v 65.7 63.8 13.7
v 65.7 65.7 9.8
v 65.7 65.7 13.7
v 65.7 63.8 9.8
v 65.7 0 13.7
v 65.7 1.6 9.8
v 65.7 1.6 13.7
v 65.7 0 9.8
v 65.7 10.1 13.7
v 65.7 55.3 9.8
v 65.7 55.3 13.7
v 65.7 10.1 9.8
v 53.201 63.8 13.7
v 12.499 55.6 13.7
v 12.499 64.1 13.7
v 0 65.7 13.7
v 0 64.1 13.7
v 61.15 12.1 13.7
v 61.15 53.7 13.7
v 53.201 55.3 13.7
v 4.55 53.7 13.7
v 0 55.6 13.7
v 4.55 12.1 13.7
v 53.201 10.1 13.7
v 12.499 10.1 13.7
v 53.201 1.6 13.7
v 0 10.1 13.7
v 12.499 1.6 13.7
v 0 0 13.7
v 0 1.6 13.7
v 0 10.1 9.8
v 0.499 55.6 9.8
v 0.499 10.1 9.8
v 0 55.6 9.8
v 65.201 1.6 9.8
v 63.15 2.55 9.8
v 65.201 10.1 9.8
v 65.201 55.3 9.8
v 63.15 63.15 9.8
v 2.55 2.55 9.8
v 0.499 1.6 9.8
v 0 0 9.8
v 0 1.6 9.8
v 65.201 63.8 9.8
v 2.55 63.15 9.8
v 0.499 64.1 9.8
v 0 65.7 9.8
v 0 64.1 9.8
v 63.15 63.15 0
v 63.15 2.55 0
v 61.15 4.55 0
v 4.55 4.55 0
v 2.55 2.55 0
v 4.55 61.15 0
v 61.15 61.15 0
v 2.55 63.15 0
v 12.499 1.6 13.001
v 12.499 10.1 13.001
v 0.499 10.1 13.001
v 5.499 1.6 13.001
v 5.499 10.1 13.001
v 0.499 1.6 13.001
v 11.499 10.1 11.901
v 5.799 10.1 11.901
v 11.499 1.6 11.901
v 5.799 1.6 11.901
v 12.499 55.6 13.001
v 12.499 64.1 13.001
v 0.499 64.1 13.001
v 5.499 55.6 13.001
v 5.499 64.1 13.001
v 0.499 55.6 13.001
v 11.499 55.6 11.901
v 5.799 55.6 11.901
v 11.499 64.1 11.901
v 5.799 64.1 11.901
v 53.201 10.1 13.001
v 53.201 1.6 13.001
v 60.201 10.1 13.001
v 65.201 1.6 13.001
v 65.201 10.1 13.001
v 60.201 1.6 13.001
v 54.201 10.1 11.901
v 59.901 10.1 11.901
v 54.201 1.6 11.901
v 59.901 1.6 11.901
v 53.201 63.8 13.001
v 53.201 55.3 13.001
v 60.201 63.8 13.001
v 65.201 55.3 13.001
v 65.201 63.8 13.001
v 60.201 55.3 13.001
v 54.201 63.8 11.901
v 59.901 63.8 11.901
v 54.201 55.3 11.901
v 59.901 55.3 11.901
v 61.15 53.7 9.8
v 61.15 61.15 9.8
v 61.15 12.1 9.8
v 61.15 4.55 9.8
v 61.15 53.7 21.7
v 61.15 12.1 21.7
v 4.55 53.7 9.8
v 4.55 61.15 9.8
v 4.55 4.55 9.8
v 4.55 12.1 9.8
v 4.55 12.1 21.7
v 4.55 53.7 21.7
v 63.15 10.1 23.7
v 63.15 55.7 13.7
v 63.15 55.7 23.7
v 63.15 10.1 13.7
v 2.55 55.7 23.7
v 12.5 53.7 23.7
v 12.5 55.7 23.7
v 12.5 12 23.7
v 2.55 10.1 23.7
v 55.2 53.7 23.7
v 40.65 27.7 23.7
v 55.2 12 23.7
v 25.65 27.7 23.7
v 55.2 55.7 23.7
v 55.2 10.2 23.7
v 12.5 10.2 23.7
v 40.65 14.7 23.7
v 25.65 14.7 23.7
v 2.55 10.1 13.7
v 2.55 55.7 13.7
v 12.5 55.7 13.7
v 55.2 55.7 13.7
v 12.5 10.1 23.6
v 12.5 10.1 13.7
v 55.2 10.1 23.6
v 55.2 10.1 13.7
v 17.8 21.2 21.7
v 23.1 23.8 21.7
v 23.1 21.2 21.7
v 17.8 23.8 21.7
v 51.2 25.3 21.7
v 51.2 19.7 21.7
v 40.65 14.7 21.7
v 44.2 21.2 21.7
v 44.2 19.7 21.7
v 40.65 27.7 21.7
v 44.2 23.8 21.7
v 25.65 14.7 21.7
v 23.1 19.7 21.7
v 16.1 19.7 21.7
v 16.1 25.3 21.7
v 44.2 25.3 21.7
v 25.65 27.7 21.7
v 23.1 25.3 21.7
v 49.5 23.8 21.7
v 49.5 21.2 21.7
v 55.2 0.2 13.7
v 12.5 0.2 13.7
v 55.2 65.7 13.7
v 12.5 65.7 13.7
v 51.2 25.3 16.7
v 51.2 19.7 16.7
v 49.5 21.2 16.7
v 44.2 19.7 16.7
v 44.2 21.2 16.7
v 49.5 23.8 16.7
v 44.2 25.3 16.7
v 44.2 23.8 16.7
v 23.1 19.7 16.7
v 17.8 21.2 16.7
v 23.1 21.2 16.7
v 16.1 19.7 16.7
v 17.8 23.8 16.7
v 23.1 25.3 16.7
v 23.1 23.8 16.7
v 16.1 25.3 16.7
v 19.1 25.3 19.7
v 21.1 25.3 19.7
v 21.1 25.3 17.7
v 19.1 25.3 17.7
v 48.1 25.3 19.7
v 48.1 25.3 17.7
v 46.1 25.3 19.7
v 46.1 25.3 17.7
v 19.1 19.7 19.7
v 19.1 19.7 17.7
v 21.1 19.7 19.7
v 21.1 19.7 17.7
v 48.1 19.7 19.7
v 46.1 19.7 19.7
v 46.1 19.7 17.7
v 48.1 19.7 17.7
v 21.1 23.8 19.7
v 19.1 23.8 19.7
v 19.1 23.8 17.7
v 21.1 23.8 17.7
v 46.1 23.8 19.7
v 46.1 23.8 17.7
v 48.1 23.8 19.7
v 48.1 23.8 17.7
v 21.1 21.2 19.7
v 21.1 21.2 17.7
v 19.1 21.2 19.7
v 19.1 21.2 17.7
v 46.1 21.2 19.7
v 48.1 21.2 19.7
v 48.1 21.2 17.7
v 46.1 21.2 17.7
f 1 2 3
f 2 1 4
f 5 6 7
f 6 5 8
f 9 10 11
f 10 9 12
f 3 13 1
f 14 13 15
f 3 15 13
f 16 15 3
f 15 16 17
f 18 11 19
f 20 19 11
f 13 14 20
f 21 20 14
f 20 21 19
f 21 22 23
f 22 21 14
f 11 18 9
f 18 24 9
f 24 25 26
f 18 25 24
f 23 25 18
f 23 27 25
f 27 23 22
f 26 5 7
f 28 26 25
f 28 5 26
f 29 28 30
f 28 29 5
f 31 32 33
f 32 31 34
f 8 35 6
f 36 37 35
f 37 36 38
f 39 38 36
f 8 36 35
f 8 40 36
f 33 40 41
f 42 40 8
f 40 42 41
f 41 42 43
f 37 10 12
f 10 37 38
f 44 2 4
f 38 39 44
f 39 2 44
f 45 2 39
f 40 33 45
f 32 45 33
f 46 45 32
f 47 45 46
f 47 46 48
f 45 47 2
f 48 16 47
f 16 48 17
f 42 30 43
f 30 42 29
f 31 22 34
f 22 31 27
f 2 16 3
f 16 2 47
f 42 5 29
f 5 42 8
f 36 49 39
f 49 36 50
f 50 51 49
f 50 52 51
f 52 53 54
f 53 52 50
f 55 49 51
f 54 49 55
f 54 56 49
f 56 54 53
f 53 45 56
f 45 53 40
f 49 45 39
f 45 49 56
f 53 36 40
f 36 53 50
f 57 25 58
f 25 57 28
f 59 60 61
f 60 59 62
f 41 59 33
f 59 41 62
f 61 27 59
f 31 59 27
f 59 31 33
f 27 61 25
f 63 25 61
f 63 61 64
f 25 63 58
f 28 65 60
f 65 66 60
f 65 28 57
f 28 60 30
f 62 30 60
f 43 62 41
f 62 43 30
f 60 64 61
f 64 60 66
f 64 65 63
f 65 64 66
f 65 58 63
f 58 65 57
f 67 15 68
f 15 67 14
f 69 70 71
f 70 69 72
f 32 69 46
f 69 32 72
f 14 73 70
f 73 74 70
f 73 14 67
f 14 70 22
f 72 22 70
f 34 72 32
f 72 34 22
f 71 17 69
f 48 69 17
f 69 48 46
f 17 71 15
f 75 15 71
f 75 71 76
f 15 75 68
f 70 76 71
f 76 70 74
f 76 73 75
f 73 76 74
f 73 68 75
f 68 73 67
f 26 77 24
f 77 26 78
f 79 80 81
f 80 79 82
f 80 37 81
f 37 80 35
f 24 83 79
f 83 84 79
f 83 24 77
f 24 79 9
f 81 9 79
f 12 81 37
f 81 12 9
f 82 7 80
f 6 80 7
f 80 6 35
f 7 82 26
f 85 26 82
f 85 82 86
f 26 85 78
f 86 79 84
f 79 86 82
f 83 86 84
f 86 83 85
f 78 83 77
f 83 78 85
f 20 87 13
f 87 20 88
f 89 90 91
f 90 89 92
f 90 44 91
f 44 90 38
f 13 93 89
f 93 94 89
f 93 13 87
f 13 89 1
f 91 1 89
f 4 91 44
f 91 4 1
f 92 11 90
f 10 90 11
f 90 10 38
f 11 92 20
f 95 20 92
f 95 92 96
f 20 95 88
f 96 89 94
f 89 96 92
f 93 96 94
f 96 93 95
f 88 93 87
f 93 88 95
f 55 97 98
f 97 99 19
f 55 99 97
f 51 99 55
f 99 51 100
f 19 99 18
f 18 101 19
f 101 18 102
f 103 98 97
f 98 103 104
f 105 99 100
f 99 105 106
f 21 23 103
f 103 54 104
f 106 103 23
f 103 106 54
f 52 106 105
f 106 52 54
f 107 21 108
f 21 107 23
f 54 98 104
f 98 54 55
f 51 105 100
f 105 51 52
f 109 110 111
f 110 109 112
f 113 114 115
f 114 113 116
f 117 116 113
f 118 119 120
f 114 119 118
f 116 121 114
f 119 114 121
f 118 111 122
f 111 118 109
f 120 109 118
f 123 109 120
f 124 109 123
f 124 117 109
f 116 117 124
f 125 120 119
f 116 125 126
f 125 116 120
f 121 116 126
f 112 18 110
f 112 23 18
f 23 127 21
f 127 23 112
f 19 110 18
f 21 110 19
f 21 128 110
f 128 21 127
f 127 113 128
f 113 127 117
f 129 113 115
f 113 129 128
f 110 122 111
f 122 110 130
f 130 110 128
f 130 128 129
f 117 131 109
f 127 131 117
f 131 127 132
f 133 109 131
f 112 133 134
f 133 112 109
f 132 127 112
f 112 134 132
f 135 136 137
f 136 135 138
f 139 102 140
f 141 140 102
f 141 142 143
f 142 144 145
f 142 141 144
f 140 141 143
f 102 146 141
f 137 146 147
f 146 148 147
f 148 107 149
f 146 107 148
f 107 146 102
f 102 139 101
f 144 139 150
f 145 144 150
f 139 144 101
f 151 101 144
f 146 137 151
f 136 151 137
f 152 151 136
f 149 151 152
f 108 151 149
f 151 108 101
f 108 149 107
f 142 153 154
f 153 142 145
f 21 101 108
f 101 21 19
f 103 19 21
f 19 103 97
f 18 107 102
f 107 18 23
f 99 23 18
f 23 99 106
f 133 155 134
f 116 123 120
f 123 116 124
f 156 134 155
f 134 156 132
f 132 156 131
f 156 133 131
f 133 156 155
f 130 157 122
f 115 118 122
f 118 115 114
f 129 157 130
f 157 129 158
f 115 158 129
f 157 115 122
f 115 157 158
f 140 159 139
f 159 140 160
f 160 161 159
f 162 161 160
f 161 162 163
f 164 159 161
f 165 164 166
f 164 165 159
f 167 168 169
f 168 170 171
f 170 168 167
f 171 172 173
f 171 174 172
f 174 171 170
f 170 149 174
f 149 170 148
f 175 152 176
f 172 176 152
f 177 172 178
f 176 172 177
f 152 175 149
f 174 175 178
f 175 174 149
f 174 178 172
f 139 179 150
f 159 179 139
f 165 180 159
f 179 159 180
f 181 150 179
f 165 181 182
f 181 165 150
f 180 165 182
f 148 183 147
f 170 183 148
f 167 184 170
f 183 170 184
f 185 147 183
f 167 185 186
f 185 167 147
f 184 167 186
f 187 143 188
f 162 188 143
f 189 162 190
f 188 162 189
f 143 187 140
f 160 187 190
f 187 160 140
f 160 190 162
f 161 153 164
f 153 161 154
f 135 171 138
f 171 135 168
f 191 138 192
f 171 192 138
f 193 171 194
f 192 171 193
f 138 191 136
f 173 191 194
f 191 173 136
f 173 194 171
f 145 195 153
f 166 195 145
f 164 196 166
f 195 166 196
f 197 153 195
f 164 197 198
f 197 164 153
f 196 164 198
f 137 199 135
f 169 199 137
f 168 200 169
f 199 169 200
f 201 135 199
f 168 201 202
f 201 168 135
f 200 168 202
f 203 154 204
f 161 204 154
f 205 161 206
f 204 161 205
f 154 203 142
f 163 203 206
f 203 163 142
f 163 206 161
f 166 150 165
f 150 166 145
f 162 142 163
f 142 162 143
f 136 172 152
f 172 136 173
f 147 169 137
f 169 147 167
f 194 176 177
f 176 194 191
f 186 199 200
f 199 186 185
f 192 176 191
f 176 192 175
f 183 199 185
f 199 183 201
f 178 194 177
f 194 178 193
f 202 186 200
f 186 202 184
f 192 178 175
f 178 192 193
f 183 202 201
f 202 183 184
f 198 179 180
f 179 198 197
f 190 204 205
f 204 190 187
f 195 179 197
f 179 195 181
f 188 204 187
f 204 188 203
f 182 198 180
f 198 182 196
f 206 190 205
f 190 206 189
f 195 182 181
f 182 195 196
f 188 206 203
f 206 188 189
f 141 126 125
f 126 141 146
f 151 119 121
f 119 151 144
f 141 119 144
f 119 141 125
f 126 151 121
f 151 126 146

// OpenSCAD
// file: nodemcu.scad
// fake nodemcu
// pins + cpu = 13mm
// borad
nodemcu_board = [57, 31.1, 1.6]; //
pins = [38, 2.5, 8.2];
cpu = [24, 16, 9 - nodemcu_board.z];
nodemcu_bb = nodemcu_board + [0, 0, cpu.z + pins.z];
hole = [3, nodemcu_board.z];
holes = [
[hole.x/2, hole.x/2, 0] + [1, 1, 0],
[-hole.x/2, hole.x/2, 0] + [nodemcu_board.x - 1, 1, 0],
[-hole.x/2, -hole.x/2, 0] + [nodemcu_board.x - 1, nodemcu_board.y - 1, 0],
[hole.x/2, -hole.x/2, 0] + [1, nodemcu_board.y - 1, 0]
];
module nodemcu() {
  translate([0, 0, pins.z + nodemcu_board.z ] - nodemcu_bb/2)
  mirror([0, 0, 1]) {
    difference() {
      union() {
    // board
    cube(nodemcu_board);
    translate([0, 0, nodemcu_board.z]) {
    // fake pins row
    color("black")
        translate([(nodemcu_board.x - pins.x)/2, 0, 0])
    cube(pins);
    // fake holes
    color("black")
        translate([(nodemcu_board.x - pins.x)/2, nodemcu_board.y - pins.y, 0])
    cube(pins);
    }
    // fake cpu
    color("red")
    translate([0, (nodemcu_board.y - cpu.y)/2, - cpu.z])
    cube(cpu);
  }
  union() {
    // mount holes

    for (i = [0:3]) {
      translate(holes[i] - [0, 0, 0.01])
    cylinder(h = hole.y + 0.02, d = hole.x);
    }
  }
}

  // usb thing
  usb = [5, 5, 3];
  usb_depth = 5;
  color("gray")
  translate([nodemcu_board.x - usb.x, 0, -nodemcu_board.z - usb.z/2])
  translate([0, nodemcu_board.y - usb.y, 0]/2)
  cube([5, 5, 3]);
  }
}
module nodemcu_simple() {
    color("pink", 0.4)
    cube(nodemcu_bb);
}
//nodemcu();
//nodemcu_simple();
// main file
include <nodemcu.scad>

hole_height = 12;
hole_width = 8.5;
totalheight = 13.7;
s = [65.7, 65.7, 3.9];
s2 = [60.6, 60.6, totalheight - s.z];
border = 2;
offset = 1.6;

module hole() {
    union() {
    margin_top = 1.6;
    hole_depth = 1.8;
    top_inlet = 0.7;
    xxx_size = 5;
    yyy_size = 1;
    side_inlet = 0.5;
    // hole H
    color("red")
    // this "height" dosn't matter
    cube([side_inlet, hole_width, 10]);
    translate([side_inlet, 0, 0]) {
    cube([hole_height, hole_width, top_inlet]);
    first_slope_size = 0.3;
    // first slope
    color("blue")
    translate([xxx_size+first_slope_size, 0, top_inlet])
        rotate([-90, 180, 0]) {
            points = [[0,0],[0, hole_depth - top_inlet],
            [first_slope_size, 0]];
            linear_extrude(hole_width)
            polygon(points);
        }
    //cube([first_slope_size, hole_width, hole_depth - top_inlet]);
       
    color("red")
    translate([xxx_size + first_slope_size, 0, top_inlet])
    cube([hole_height - xxx_size - yyy_size - first_slope_size, hole_width, hole_depth - top_inlet]);
        
    // now "slope"
    translate([hole_height - yyy_size, hole_width, top_inlet])
        rotate([90, 0, 0])
        color("magenta") {
            points = [
            [0, 0],
            [0, hole_depth - top_inlet],
            [yyy_size, 0],
            ];
            linear_extrude(hole_width)
            polygon(points);
        }
    }
}
    
}
module cap_original() {
    /*
    >      65.7       <
    +-----------------+ v
    |H               H|
    |                 | 
    |                 | 65.7
    |                 | 
    |H               H| 
    +-----------------+ ^
    

    -------------------V 3.9
    -+---------------+-^ 
     ||             ||
     ||             ||
    

    -------+ v    1.6
    -------+ ^v
    xx    y|    8.5
    xx    y|
    -------+  ^
    > 12   <
    
    xx = 5
    [empty] = 5.3
    yy = 1.5
    side inlet 0.5
    top inlet 0.7
    */

translate([0, 0, totalheight-s.z])
    difference()  
    {
 union() {
    cube(s);
    translate([-(s2.x  - s.x)/2, -(s2.y - s.y)/2, -s2.z])
    cube(s2);
 }
 
 pts = [
 [[0, 0, 0], [0, 0, 0]],
 [[0, 1, 0], [0, -s.y, 0]],
 [[1, 0, 0], [-s.x, 0, 0]],
 [[1, 0, 0], [-s.x, s.y-hole_height, 0]]
 ];
 for (i = [0:3]) {
 mirror(pts[i][0])
 translate(pts[i][1])
 union() {
    
    translate([-0.001, offset, s.z+0.001])
    mirror([0, 0, 1])
    hole();
     
    //translate([-0.001, s.x - hole_width - offset , s.z+0.001])
    //mirror([0, 0, 1])
    //hole();
 }
 }
 color("yellow")
   translate([-(s2.x- s.x)/2 + border, -(s2.y -s.y)/2 + border, -totalheight])
    cube([s2.x - border*2, s2.y-border*2, totalheight]);
 }

}

module cap_new() {
    border = 2;
    extend_by = 10;
    
    //difference()
    
  difference() {
    
    union() {
      cap_original();
      // extension
      color("purple")
      translate([(s.x-s2.x)/2 , offset + hole_width, totalheight])
      cube([s2.x, s2.y - hole_width*2+border, extend_by]);
    }
    color("blue")
    //cube([10, 10, totalheight]);
    // we want make it a slightly higher
    // and add "mount" slides for nodemcu
    translate([(s.x-s2.x)/2 + border, offset + hole_width + border, totalheight-border*2])
    cube([s2.x - border*2, s2.y - hole_width*2 - border, extend_by + border]);
  }

    // cutout center
    //translate([-(s2.x- s.x)/2 + border, -(s2.y -s.y)/2 + border, -0.001])
    //cube([s2.x - 2*border, s2.y - 2*border, extend_by + totalheight*2 - s.z]);
translate([
    (s.x - s2.x)/2 + nodemcu_bb_rot.x/2,
    offset + hole_width + border + ( nodemcu_board.z + border*2) + nodemcu_board.z + 0.4,
    totalheight + extend_by - 5 - border]) {
      difference() 
      {
        translate([-border, 0, 0])
        cube([nodemcu_board.y + border*2, nodemcu_board.z + border*2, 5 + 0.01]);
        
      color("red")
      translate([-0.3, (nodemcu_board.z + border*2)/2 - (    nodemcu_board.z + 1)/2 , -0.1])
      cube([nodemcu_board.y+0.6, nodemcu_board.z + 1, 40]);
        
      color("gray")
      translate([5, -10, -1])
      cube([nodemcu_board.y - 10, 50, 100]);
            color("gray")
translate([1, -10, 1])
cube([2, 30, 2]);
            color("gray")
translate([28, -10, 1])
cube([2, 30, 2]);
    }

}

}

nodemcu_bb_rot = [nodemcu_bb.y, nodemcu_bb.z, nodemcu_bb.x];

difference() {
union () {
cap_new();

//translate([nodemcu_bb.x, nodemcu_bb.y, 0]/2)
//translate([(s.x-s2.x)/2 + border, 0, 0])
// rotated so
// X = bb.y
// Y = bb.z
// Z = bb.x


if (0) {
// move closer to wall
    // 12 extend_by + border
    teh_size = 6;
translate([0, -10, -3])
translate([(s.x - s2.x)/2 + nodemcu_bb_rot.x/2, offset + hole_width + (s2.y - hole_width*2+border)/2 - nodemcu_bb_rot.y/2, -nodemcu_bb_rot.z + totalheight + 10])
translate([nodemcu_bb_rot.x, nodemcu_bb_rot.y, 0.01])
rotate([90, -90, 0]) {

     nodemcu();
    }
  }
}

// dziura na usb
translate([2, -4, 0])
translate([(s.x - s2.x)/2 + nodemcu_bb_rot.x/2, offset + hole_width + (s2.y - hole_width*2+border)/2 - nodemcu_bb_rot.y/2, -nodemcu_bb_rot.z + totalheight + 10])
translate([nodemcu_bb_rot.x, nodemcu_bb_rot.y, 0])
rotate([90, -90, 0])
translate([nodemcu_board.x - (nodemcu_board.x - pins.x)/2,
nodemcu_bb.y/2 -5,
nodemcu_bb.z - cpu.z])
cube([100, 15, 13]);
}

if (1) {
// add fillers to prevent generating support
// 0.5 - inlet
// 1 - 2*inlet
translate([hole_height+0.5, 0, totalheight])
{
  difference() 
  {
      color("red")
cube([s.x - hole_height*2+1, 12, 10]);
    translate([-6, -8.4, -8.6])
rotate([45, 0, 0])
cube(100);
  }
  

translate([0, s.y - 12, 0]) {
  difference() 
  {
    color("pink")
cube([s.x - hole_height*2+1, 12, 10]);
  translate([-6, 12, 0])
rotate([45, 0, 0])
cube(100);
  }
}
}
}
